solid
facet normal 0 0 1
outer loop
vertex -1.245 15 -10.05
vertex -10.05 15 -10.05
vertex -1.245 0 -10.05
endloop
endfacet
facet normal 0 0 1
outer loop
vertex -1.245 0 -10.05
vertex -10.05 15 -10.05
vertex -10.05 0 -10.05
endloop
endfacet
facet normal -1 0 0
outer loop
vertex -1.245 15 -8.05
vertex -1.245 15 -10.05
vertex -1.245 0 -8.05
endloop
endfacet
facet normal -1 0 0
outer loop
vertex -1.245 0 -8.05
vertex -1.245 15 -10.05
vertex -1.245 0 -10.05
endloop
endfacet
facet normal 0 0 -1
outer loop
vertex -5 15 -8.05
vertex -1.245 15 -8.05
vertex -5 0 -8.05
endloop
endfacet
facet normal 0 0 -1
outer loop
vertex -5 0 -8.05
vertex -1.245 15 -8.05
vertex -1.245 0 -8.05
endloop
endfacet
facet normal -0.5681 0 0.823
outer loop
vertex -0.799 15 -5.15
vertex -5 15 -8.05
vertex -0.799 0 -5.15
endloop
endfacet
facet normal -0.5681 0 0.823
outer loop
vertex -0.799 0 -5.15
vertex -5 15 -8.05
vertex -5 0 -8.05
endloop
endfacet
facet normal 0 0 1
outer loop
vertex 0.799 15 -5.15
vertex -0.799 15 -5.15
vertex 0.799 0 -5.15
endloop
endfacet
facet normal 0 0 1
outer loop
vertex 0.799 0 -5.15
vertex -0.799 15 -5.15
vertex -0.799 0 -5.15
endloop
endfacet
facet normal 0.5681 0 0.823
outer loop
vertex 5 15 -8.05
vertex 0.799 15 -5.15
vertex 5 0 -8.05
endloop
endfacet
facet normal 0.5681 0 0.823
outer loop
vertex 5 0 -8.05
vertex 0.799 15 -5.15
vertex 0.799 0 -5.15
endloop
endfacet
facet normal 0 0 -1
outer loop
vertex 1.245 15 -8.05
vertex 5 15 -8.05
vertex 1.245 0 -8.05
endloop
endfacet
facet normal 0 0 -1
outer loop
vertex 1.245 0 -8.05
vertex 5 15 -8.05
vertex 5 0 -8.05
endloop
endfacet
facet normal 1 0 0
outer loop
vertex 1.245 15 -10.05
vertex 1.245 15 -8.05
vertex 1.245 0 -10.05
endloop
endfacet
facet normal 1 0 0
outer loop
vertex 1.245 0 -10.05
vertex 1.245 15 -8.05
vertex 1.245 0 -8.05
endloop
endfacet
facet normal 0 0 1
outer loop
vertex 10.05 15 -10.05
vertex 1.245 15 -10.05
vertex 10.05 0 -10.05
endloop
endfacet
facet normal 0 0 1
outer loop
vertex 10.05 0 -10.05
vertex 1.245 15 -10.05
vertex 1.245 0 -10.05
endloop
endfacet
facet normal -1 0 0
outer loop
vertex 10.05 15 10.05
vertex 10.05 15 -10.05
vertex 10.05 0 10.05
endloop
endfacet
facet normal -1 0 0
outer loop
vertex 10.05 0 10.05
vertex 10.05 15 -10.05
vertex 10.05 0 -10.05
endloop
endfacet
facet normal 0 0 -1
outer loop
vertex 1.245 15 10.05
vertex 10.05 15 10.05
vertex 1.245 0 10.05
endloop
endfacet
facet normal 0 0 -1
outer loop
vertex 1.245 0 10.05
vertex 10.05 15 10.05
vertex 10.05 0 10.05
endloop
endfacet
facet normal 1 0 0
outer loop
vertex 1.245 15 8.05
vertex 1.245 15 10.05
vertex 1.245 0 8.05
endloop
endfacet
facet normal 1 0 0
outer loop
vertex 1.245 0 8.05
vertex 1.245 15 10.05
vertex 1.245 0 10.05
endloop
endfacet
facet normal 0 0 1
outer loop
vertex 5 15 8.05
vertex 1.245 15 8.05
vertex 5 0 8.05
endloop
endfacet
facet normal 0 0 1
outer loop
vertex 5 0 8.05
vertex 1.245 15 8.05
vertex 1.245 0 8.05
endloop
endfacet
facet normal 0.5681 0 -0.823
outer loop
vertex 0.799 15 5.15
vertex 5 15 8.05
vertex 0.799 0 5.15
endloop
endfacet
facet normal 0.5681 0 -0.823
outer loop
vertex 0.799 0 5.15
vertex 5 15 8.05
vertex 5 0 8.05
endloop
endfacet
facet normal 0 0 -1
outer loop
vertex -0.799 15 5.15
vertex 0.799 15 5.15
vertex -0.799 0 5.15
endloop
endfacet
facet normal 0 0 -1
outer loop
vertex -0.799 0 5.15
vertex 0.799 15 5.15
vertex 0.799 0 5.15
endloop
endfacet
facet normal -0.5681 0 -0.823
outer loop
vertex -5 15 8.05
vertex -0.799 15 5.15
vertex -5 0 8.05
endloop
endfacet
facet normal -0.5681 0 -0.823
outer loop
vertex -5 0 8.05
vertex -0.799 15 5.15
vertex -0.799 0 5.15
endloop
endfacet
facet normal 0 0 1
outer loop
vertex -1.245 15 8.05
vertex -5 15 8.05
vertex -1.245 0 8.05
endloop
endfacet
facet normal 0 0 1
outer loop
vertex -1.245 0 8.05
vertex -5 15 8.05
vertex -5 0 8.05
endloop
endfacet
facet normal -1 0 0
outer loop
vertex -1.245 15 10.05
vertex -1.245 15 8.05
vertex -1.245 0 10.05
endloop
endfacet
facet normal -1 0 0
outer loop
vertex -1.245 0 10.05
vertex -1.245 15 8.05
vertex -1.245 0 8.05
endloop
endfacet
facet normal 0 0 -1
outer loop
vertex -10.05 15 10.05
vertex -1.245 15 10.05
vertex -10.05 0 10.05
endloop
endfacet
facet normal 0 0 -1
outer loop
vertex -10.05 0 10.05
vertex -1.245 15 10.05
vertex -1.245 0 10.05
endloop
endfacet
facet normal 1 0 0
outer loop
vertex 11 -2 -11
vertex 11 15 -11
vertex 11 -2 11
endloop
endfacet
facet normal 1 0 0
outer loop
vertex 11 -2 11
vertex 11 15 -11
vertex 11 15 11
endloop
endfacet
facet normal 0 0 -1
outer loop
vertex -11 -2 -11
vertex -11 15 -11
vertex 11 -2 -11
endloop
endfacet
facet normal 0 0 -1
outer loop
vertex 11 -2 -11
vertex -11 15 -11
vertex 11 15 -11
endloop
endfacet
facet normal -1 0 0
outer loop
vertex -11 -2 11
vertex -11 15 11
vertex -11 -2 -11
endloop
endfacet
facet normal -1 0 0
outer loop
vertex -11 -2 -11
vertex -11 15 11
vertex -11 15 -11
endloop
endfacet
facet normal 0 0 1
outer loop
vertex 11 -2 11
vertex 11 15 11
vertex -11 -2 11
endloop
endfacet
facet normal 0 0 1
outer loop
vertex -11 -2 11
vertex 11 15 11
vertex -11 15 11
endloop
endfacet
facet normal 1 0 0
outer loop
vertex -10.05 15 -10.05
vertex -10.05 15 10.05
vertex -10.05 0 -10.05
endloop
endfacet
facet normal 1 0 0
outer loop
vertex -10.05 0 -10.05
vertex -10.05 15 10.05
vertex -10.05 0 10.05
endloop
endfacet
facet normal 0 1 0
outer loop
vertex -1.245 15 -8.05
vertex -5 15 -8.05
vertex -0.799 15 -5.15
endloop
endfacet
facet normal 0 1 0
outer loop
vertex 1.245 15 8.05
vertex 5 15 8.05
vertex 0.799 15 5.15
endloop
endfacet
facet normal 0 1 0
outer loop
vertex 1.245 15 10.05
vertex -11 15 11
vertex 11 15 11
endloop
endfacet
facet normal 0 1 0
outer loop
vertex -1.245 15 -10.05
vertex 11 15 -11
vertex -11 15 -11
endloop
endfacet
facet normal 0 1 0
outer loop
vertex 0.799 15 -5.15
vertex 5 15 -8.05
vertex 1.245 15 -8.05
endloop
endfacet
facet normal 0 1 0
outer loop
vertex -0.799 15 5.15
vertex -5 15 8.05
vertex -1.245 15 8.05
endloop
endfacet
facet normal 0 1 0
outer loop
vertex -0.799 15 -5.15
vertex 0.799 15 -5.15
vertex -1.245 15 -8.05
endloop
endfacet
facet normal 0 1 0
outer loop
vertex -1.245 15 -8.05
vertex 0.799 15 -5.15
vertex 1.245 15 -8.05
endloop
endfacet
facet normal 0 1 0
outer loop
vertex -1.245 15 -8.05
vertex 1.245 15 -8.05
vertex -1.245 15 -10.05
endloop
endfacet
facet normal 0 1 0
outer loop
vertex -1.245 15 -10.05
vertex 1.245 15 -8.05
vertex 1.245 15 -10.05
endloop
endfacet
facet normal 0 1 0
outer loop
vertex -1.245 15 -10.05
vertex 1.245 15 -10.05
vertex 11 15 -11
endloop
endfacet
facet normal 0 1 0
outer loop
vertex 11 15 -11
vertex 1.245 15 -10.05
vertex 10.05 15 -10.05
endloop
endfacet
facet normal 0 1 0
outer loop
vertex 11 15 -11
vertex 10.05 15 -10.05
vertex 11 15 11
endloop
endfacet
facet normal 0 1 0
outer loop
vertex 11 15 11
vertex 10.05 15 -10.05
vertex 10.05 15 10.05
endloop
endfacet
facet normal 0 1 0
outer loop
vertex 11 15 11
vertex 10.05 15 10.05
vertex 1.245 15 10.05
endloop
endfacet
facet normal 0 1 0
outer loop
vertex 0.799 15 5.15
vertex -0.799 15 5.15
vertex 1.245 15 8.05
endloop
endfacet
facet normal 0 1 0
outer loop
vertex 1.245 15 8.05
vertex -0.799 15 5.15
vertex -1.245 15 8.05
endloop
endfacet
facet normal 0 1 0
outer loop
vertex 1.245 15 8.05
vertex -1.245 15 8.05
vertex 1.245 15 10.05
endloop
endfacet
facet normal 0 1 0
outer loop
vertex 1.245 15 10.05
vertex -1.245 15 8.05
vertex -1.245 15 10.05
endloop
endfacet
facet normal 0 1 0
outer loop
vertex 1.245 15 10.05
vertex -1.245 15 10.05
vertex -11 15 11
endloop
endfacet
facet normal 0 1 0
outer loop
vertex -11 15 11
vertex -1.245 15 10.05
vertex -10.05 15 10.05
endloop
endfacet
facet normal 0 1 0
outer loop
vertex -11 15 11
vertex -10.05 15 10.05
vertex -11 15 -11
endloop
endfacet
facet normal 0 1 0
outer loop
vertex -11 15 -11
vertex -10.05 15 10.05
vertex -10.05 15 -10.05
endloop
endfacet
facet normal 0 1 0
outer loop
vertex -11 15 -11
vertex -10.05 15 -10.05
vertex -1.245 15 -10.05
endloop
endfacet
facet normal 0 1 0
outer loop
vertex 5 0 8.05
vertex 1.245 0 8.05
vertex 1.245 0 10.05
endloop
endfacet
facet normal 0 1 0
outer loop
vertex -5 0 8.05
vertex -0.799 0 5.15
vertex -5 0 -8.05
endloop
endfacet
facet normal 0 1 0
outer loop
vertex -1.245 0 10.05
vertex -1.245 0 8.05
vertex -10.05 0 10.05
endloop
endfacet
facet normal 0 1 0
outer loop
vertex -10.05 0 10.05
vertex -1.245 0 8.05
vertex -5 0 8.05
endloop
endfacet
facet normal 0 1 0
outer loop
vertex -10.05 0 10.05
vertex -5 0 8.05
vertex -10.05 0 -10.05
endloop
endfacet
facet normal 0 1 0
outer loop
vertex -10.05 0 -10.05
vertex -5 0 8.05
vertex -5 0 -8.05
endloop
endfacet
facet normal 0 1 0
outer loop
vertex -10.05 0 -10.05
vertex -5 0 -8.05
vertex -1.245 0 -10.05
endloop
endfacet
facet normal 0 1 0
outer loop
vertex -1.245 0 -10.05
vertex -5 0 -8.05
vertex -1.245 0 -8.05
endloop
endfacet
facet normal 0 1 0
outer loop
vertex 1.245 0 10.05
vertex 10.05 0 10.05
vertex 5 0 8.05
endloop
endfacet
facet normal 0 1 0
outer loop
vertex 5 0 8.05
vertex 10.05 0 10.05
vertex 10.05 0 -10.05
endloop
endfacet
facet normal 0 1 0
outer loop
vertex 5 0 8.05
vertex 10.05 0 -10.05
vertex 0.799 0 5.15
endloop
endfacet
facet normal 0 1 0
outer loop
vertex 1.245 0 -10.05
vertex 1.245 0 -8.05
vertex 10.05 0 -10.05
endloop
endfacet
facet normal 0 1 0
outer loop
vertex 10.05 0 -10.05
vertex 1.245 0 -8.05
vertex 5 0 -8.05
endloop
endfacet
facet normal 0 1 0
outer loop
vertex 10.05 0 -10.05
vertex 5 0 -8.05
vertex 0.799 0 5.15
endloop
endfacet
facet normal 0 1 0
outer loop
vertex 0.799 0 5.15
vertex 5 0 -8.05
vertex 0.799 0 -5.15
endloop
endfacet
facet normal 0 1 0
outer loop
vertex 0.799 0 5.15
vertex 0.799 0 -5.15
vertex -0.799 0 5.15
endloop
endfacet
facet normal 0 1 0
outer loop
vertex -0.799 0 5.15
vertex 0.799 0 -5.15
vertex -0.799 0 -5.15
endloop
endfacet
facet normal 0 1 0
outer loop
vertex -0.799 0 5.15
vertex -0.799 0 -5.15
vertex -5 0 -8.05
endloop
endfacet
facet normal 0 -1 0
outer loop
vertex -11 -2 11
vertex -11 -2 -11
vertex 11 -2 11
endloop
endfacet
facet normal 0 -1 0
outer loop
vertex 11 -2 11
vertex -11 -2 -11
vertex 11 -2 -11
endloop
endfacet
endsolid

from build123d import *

# Parameters (mm, degrees)
SKETCH1_W           = 22
SKETCH1_H           = 22
SKETCH1_W_2         = 20.1
SKETCH1_H_2         = 20.1
BOSS_EXTRUDE1_DEPTH = 15
SKETCH2_W           = 22
SKETCH2_H           = 22
BOSS_EXTRUDE2_DEPTH = 2


with BuildPart() as part:
    # Sketch1 → Boss-Extrude1 (new body)
    # profile 1 of 3: a face of its own
    with BuildSketch(Plane(origin=(0, 0, 0), x_dir=(1, 0, 0), z_dir=(0, 1, 0))):
        Rectangle(SKETCH1_W, SKETCH1_H)
        Rectangle(SKETCH1_W_2, SKETCH1_H_2, mode=Mode.SUBTRACT)
    # profile 2 of 3: a face of its own
    with BuildSketch(Plane(origin=(0, 0, 0), x_dir=(1, 0, 0), z_dir=(0, 1, 0))):
        Polygon((1.245, 10.05), (-1.245, 10.05), (-1.245, 8.05), (-5, 8.05), (-0.799132047, 5.15), (0.799132047, 5.15), (5, 8.05), (1.245, 8.05), align=None)
    # profile 3 of 3: a face of its own
    with BuildSketch(Plane(origin=(0, 0, 0), x_dir=(1, 0, 0), z_dir=(0, 1, 0))):
        Polygon((-1.245, -8.05), (-1.245, -10.05), (1.245, -10.05), (1.245, -8.05), (5, -8.05), (0.799132047, -5.15), (-0.799132047, -5.15), (-5, -8.05), align=None)
    extrude(amount=BOSS_EXTRUDE1_DEPTH)

    # Sketch2 → Boss-Extrude2 (add)
    with BuildSketch(Plane.XZ):
        Rectangle(SKETCH2_W, SKETCH2_H)
    extrude(amount=BOSS_EXTRUDE2_DEPTH)


solid = part.part
